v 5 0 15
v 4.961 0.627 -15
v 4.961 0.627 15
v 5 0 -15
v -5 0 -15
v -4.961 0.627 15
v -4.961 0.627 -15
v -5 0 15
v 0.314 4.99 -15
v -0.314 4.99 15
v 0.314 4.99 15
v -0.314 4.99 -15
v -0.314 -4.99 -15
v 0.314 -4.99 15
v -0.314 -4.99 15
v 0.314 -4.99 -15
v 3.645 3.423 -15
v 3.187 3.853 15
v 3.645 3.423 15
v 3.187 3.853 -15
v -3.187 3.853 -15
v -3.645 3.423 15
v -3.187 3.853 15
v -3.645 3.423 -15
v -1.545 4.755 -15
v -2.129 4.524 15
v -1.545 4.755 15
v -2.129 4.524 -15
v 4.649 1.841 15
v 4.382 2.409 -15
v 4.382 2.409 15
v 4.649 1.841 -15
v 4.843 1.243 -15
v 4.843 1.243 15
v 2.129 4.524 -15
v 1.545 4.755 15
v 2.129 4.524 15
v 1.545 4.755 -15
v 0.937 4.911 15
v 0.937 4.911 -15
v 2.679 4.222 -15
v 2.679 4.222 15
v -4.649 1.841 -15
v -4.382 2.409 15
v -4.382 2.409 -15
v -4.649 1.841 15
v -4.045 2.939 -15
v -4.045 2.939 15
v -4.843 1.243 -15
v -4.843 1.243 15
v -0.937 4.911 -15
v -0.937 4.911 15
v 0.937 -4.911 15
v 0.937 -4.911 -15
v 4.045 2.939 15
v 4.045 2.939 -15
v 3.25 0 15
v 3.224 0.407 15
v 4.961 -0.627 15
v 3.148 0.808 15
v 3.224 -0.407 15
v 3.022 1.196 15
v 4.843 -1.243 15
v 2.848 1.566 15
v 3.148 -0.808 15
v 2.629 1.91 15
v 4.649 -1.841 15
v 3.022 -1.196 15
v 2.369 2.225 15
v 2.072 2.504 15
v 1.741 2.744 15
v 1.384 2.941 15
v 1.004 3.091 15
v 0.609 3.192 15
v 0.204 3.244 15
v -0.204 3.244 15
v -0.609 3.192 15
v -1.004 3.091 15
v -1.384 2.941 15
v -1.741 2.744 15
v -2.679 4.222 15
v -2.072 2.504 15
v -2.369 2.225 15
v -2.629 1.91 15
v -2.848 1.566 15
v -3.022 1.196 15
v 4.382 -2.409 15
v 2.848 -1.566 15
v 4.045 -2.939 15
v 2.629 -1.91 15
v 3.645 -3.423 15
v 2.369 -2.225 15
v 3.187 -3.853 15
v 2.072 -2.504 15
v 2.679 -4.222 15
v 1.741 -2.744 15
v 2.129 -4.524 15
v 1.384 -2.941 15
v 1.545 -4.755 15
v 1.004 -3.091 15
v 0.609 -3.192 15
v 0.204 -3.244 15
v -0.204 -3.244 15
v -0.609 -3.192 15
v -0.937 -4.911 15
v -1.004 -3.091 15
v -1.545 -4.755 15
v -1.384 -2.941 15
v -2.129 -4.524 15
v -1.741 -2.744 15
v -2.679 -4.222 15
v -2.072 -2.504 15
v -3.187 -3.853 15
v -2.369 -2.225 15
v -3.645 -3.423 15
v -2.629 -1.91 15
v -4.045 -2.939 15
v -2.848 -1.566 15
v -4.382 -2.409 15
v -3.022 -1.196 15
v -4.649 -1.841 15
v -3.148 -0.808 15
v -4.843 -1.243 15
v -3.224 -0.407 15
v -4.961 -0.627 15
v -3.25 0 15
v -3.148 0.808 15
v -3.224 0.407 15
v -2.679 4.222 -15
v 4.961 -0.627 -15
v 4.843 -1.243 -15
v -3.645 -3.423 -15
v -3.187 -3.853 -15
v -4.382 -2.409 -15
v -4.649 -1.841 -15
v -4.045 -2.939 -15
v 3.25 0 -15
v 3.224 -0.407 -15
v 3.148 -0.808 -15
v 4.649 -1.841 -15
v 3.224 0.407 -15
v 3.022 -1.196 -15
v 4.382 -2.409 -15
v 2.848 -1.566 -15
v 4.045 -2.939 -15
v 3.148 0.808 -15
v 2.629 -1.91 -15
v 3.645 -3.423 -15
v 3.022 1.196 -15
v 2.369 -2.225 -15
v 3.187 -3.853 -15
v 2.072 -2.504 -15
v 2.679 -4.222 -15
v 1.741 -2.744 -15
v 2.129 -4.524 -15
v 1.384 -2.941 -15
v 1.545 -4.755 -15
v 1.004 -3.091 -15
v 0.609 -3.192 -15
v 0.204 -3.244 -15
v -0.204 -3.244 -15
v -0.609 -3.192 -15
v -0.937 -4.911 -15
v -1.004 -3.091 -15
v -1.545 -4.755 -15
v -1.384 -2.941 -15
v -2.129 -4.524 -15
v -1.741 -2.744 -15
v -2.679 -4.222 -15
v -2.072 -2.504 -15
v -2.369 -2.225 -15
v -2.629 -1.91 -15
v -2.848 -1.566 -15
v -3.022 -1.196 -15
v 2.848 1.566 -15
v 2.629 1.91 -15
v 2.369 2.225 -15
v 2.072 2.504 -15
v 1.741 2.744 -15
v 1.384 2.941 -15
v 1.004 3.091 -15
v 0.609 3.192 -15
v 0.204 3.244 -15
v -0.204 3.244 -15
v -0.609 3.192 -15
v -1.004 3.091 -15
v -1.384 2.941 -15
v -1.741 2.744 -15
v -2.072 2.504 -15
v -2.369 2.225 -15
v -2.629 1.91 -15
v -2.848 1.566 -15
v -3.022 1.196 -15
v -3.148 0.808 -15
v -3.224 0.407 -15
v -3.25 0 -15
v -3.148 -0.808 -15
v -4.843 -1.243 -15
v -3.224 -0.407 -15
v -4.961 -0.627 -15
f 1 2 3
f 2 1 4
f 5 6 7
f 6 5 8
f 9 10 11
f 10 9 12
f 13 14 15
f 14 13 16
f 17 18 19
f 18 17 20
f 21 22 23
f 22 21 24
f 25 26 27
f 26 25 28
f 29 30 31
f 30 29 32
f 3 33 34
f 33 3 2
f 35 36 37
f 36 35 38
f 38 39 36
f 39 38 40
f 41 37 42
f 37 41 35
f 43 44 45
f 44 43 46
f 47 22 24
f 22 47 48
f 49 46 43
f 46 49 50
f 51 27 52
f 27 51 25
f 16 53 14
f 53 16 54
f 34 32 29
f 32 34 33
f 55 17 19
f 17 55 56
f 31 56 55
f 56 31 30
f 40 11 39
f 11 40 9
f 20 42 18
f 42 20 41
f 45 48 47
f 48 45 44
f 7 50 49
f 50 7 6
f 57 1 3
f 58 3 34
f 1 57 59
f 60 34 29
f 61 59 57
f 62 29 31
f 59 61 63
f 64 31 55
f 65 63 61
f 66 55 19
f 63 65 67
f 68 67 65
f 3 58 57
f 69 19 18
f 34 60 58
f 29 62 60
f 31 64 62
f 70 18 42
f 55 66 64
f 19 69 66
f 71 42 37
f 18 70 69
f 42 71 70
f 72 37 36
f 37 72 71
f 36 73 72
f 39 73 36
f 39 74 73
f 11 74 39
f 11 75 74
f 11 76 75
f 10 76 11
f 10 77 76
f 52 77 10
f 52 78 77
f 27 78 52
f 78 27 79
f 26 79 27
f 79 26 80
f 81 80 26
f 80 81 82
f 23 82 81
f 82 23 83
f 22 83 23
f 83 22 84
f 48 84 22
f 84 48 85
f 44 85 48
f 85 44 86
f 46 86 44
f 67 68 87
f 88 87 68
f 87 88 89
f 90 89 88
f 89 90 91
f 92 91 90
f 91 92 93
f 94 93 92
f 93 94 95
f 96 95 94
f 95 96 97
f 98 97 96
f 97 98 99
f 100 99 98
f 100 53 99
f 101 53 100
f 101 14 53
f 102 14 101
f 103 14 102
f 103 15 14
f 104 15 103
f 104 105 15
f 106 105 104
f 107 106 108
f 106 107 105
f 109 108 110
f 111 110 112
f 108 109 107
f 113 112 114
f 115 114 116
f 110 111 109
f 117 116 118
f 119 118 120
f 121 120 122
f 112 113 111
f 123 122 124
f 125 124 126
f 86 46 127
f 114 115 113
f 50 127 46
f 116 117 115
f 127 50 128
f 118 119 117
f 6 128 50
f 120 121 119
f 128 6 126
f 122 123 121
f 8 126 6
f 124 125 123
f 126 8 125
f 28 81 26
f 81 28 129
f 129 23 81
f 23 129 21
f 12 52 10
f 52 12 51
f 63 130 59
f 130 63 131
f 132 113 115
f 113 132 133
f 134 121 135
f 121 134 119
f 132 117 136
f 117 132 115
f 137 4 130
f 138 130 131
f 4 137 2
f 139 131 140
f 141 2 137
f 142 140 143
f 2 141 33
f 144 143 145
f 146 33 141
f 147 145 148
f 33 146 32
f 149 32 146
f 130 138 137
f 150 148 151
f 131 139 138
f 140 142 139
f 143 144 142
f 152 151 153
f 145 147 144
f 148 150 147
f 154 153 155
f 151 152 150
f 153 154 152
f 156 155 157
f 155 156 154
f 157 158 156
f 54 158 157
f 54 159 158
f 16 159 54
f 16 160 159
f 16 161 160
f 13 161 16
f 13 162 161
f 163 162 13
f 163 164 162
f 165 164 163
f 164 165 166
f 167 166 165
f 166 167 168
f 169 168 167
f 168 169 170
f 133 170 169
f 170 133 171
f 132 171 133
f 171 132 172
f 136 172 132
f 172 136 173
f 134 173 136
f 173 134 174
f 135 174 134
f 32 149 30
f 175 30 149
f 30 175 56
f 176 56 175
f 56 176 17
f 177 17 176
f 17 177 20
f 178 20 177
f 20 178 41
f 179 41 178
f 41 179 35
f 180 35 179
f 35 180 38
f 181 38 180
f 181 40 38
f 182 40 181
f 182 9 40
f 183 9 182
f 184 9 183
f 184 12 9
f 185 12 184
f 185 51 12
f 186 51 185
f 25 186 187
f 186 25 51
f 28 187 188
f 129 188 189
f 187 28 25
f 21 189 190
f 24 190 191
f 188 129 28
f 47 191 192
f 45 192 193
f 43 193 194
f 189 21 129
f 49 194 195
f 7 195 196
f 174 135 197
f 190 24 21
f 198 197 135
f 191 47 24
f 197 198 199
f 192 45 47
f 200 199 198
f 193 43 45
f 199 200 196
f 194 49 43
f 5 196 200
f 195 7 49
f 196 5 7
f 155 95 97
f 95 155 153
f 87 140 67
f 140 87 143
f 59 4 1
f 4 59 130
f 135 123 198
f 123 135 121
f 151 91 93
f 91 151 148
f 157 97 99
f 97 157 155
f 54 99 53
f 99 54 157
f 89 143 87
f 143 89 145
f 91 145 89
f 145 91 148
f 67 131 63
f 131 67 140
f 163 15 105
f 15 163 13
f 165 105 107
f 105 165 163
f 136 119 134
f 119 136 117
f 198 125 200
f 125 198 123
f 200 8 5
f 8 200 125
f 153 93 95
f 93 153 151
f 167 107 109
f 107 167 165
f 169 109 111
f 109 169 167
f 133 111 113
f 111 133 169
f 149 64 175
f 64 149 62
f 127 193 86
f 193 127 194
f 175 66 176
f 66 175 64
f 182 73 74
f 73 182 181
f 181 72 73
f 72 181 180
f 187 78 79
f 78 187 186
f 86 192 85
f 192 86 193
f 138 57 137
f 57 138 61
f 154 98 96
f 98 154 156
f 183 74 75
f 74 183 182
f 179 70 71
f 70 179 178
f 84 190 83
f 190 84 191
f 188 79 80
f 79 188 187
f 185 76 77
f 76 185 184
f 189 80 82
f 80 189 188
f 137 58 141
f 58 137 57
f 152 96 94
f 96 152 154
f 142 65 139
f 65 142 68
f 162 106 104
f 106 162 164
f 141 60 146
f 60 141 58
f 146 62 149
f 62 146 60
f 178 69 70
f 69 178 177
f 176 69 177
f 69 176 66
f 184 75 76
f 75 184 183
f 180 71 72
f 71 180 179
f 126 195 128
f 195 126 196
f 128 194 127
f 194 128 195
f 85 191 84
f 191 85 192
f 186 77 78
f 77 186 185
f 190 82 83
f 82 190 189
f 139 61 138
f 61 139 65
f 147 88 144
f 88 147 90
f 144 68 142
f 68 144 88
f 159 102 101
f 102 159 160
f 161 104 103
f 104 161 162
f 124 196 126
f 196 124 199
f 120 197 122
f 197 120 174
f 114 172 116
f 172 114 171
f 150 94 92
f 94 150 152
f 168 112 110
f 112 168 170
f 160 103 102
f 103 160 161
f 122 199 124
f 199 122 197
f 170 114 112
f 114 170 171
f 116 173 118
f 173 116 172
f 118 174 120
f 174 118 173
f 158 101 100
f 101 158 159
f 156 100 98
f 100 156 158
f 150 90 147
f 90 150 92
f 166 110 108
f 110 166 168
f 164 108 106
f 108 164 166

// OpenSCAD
$fn = 50;


difference() {
	union() {
		translate(v = [0, 0, -15.0000000000]) {
			cylinder(h = 30, r = 5.0000000000);
		}
	}
	union() {
		translate(v = [0, 0, -100.0000000000]) {
			cylinder(h = 200, r = 3.2500000000);
		}
	}
}
